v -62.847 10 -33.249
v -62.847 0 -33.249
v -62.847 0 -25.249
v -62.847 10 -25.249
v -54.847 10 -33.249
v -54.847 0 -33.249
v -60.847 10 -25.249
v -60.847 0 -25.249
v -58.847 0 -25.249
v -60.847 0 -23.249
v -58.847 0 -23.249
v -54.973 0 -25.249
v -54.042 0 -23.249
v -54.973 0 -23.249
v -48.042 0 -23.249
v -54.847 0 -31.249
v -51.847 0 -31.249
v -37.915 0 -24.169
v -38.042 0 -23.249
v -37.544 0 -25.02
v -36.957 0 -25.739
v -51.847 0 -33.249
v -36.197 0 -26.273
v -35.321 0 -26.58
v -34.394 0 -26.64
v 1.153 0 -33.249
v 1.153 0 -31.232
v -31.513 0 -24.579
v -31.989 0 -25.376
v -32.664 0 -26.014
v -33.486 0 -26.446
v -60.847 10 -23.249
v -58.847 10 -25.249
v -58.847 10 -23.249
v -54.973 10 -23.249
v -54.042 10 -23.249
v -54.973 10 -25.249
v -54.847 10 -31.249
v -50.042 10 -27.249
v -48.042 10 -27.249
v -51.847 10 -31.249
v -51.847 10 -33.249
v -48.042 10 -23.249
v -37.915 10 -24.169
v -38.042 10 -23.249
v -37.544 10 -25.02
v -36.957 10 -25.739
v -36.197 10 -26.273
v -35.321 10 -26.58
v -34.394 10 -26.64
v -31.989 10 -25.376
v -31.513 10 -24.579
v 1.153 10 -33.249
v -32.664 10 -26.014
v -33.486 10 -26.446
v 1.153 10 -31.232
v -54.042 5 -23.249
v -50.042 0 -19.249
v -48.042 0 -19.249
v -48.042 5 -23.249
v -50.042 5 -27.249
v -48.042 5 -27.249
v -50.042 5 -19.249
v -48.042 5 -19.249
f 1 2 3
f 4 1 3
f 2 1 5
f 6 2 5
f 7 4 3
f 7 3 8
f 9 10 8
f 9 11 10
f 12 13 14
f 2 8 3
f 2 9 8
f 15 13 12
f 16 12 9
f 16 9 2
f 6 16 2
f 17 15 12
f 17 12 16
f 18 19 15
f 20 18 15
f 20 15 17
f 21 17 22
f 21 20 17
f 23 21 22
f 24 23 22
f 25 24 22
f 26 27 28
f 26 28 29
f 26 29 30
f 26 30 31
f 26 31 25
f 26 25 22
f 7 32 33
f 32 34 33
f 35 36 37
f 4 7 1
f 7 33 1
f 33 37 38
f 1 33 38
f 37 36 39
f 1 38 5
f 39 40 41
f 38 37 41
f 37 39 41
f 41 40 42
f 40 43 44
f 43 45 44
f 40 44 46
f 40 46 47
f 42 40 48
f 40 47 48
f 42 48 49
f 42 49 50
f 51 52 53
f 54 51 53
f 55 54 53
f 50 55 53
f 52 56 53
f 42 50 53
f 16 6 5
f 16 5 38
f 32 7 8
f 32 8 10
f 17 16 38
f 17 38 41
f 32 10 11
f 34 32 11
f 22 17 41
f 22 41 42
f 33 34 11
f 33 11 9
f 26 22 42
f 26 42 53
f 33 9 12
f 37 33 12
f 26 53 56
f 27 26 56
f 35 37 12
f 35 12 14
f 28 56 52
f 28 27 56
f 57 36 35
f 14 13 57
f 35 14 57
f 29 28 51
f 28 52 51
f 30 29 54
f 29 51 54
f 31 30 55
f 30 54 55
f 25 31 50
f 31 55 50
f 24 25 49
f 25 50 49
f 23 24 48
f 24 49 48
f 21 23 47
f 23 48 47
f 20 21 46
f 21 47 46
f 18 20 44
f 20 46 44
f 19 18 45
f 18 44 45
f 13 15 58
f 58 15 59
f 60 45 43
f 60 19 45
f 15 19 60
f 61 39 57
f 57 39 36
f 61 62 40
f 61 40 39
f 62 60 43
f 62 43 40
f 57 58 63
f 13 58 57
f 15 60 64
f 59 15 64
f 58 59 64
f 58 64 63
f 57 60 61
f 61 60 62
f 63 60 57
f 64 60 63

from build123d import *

# Parameters (mm, degrees)
PAD_DEPTH       = 10
SKETCH001_R     = 3.4
POCKET_DEPTH    = 10.001
PAD001_DEPTH    = 5
POCKET001_DEPTH = 5


with BuildPart() as part:
    # Sketch → Pad (new body)
    with BuildSketch(Plane(origin=(0, 0, 0), x_dir=(1, 0, 0), z_dir=(0, 1, 0))):
        Polygon((-62.846755, 25.248808), (-60.846755, 25.248808), (-60.846755, 23.248808), (-58.846755, 23.248808), (-58.846755, 25.248808), (-54.972908, 25.248808), (-54.972908, 23.248808), (-38.042093, 23.248808), (1.153245, 31.231634), (1.153245, 33.248808), (-51.846755, 33.248808), (-51.846755, 31.248808), (-54.846755, 31.248808), (-54.846755, 33.248808), (-62.846755, 33.248808), align=None)
    extrude(amount=PAD_DEPTH)

    # Sketch001 → Pocket (cut, through all)
    with BuildSketch(Plane(origin=(0, 10, 0), x_dir=(1, 0, 0), z_dir=(0, 1, 0))):
        with Locations((-34.642093, 23.248808)):
            Circle(SKETCH001_R)
    extrude(amount=-POCKET_DEPTH, mode=Mode.SUBTRACT)

    # Sketch002 → Pad001 (new body)
    with BuildSketch(Plane.XZ):
        Polygon((-48.042093, -23.248808), (-48.042093, -19.248808), (-50.042093, -19.248808), (-54.042093, -23.248808), align=None)
    extrude(amount=-PAD001_DEPTH)

    # Sketch003 → Pocket001 (cut)
    with BuildSketch(Plane(origin=(0, 10, 0), x_dir=(1, 0, 0), z_dir=(0, 1, 0))):
        Polygon((-48.042093, 23.248808), (-48.042093, 27.248808), (-50.042093, 27.248808), (-54.042093, 23.248808), align=None)
    extrude(amount=-POCKET001_DEPTH, mode=Mode.SUBTRACT)


solid = part.part
